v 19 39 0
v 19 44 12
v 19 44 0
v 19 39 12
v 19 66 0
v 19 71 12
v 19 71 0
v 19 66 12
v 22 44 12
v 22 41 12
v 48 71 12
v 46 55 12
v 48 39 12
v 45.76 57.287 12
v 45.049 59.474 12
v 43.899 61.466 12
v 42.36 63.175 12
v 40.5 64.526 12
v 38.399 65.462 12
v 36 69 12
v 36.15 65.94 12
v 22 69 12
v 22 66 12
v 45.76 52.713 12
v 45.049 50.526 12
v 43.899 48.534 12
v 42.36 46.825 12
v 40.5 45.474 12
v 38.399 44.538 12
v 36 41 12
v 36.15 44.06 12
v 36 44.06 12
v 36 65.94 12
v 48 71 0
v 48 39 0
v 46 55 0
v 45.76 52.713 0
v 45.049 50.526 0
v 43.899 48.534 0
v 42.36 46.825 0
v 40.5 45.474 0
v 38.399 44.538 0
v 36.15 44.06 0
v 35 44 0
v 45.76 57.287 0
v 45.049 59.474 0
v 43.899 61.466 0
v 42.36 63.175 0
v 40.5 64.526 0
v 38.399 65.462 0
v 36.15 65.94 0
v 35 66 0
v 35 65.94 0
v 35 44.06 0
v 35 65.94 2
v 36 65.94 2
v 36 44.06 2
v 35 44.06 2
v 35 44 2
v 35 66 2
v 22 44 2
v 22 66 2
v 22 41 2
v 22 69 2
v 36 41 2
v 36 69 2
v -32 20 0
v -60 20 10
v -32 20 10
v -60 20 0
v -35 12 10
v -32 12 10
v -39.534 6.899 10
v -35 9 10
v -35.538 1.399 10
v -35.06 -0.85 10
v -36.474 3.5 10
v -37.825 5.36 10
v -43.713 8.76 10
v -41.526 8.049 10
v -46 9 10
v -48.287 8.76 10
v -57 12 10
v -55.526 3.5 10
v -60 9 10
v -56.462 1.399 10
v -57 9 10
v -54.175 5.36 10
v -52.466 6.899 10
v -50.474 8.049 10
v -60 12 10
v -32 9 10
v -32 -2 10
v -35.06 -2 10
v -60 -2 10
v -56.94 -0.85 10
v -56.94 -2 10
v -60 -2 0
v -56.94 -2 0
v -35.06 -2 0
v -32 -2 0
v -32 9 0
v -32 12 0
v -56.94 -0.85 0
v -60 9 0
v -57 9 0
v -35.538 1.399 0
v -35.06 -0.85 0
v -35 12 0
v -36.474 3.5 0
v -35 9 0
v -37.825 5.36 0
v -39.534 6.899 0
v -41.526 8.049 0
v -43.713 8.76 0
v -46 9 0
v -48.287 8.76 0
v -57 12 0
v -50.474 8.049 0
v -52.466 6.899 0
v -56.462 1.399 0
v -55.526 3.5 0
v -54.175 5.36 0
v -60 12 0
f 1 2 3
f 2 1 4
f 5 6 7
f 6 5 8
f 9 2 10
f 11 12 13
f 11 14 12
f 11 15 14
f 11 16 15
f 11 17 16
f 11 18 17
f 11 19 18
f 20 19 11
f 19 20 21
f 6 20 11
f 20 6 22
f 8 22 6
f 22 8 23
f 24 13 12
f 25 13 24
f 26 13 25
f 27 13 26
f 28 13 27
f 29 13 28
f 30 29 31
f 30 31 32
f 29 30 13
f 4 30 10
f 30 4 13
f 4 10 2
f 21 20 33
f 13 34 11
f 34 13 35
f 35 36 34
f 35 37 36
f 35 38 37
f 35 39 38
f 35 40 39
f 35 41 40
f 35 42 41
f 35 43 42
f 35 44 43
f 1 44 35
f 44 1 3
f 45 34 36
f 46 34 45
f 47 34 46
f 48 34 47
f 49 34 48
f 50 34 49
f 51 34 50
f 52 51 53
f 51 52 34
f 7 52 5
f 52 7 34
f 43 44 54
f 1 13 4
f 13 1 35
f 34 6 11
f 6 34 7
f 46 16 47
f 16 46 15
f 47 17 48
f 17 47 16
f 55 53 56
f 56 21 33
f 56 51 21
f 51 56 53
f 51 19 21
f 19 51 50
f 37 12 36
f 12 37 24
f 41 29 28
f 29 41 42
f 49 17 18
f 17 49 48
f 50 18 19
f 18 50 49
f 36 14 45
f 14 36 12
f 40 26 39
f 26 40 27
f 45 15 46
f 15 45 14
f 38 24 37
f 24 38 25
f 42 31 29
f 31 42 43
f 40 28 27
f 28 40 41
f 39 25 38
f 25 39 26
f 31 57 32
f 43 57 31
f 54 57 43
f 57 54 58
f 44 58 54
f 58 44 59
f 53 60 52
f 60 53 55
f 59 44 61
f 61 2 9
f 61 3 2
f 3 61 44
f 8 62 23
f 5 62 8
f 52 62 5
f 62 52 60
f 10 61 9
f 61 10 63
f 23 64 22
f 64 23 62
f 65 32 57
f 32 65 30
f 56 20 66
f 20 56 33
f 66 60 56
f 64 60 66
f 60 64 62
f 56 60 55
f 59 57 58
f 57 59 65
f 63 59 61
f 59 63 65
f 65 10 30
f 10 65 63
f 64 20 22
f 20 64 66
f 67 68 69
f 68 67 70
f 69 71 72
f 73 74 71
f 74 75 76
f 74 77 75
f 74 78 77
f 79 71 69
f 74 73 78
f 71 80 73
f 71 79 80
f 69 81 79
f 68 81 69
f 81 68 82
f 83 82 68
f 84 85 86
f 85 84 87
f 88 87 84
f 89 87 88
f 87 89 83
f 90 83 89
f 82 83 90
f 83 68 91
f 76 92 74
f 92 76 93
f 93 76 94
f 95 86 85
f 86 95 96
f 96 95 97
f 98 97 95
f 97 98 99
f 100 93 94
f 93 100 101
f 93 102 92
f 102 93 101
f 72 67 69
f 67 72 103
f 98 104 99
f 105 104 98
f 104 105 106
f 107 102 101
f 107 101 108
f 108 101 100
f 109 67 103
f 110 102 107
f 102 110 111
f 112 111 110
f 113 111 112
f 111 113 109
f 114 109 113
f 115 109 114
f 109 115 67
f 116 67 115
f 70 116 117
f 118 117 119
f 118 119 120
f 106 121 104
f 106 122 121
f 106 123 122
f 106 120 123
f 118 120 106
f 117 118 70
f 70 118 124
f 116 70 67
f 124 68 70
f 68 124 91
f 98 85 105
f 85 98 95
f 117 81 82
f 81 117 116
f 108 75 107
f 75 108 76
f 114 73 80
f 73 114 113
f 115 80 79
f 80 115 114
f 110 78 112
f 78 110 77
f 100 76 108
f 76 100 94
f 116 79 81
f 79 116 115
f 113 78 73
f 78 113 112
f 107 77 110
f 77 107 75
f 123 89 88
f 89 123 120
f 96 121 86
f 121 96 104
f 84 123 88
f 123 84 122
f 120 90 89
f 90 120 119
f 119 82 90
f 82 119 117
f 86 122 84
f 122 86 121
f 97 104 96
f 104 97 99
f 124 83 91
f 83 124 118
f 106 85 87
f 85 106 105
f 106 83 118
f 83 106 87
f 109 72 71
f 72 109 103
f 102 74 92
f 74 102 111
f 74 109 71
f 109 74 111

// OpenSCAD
radius=11;
height=10; //30;

top_border=2;
heel_width=3;
heel_height=3;

holder_length = 140;
holder_width = 100;
border = 4;
bottom_thickness=6;

rows = 7;
columns = 5;

translate([2 * radius - heel_width, 3 * radius + (2 * heel_height), 0]) {
	difference() {
		cube([2 * radius + 2 * top_border + heel_width, 2 * radius + 2 * heel_height + 2 * top_border, height + top_border]);
		translate([radius + top_border + heel_width, radius + top_border + heel_height, 0]) {cylinder(height + top_border, r=radius);}
		translate([0, top_border + heel_height, 0]) {cube([radius + top_border + heel_width, 2 * radius, height + top_border]);}
		translate([heel_width, top_border, top_border]) {cube([radius + heel_width, 2 * radius + 2 * heel_height, height]);}
		translate([0, top_border + heel_height, top_border]) {cube([heel_width, 2 * radius - heel_height, height]);}
	}
}

translate([-60,20,0]) {
rotate([0,0,-90]) {
difference() {
	cube([2 * radius, 2 * radius + 2 * heel_height, height]);
	translate([2 * radius, radius + heel_height, 0]) {cylinder(height, r=radius);}
	translate([1 * radius - heel_width, 0, 0]) { cube([heel_width, heel_height, height]);}
	translate([1 * radius - heel_width, 2 * radius + heel_height, 0]) { cube([heel_width, heel_height, height]);}
}

/*
translate([-holder_length - 2 * border + holder_width/rows, -holder_width/2 + (2 * radius + 2 * heel_height)/2 - 2 * border + holder_width/rows, 0]) {
	difference() {
		minkowski() {
			cube([holder_length + 2 * border - (2 * holder_width/rows), holder_width + 2 * border - (2 * holder_width/rows), height-1]);
			cylinder(1, r=holder_width/rows);
		}
		translate([border, border, bottom_thickness]) {
			minkowski() {
				cube([holder_length - (2 * holder_width/rows), holder_width - (2 * holder_width/rows), height-1]);
				cylinder(1, r=holder_width/rows);
			}
		}
		for (row = [1: rows]) {
			for (column = [1: columns]) {
				translate([border + row * holder_length / rows - (holder_length / (2 * rows)) - holder_width/rows, border + column * holder_width / columns - (holder_width / (2 * columns)) - holder_width/rows, 0]) {cylinder(bottom_thickness, r1=2, r2=holder_width/rows);}
			}
		}
	}
}*/
}
}
